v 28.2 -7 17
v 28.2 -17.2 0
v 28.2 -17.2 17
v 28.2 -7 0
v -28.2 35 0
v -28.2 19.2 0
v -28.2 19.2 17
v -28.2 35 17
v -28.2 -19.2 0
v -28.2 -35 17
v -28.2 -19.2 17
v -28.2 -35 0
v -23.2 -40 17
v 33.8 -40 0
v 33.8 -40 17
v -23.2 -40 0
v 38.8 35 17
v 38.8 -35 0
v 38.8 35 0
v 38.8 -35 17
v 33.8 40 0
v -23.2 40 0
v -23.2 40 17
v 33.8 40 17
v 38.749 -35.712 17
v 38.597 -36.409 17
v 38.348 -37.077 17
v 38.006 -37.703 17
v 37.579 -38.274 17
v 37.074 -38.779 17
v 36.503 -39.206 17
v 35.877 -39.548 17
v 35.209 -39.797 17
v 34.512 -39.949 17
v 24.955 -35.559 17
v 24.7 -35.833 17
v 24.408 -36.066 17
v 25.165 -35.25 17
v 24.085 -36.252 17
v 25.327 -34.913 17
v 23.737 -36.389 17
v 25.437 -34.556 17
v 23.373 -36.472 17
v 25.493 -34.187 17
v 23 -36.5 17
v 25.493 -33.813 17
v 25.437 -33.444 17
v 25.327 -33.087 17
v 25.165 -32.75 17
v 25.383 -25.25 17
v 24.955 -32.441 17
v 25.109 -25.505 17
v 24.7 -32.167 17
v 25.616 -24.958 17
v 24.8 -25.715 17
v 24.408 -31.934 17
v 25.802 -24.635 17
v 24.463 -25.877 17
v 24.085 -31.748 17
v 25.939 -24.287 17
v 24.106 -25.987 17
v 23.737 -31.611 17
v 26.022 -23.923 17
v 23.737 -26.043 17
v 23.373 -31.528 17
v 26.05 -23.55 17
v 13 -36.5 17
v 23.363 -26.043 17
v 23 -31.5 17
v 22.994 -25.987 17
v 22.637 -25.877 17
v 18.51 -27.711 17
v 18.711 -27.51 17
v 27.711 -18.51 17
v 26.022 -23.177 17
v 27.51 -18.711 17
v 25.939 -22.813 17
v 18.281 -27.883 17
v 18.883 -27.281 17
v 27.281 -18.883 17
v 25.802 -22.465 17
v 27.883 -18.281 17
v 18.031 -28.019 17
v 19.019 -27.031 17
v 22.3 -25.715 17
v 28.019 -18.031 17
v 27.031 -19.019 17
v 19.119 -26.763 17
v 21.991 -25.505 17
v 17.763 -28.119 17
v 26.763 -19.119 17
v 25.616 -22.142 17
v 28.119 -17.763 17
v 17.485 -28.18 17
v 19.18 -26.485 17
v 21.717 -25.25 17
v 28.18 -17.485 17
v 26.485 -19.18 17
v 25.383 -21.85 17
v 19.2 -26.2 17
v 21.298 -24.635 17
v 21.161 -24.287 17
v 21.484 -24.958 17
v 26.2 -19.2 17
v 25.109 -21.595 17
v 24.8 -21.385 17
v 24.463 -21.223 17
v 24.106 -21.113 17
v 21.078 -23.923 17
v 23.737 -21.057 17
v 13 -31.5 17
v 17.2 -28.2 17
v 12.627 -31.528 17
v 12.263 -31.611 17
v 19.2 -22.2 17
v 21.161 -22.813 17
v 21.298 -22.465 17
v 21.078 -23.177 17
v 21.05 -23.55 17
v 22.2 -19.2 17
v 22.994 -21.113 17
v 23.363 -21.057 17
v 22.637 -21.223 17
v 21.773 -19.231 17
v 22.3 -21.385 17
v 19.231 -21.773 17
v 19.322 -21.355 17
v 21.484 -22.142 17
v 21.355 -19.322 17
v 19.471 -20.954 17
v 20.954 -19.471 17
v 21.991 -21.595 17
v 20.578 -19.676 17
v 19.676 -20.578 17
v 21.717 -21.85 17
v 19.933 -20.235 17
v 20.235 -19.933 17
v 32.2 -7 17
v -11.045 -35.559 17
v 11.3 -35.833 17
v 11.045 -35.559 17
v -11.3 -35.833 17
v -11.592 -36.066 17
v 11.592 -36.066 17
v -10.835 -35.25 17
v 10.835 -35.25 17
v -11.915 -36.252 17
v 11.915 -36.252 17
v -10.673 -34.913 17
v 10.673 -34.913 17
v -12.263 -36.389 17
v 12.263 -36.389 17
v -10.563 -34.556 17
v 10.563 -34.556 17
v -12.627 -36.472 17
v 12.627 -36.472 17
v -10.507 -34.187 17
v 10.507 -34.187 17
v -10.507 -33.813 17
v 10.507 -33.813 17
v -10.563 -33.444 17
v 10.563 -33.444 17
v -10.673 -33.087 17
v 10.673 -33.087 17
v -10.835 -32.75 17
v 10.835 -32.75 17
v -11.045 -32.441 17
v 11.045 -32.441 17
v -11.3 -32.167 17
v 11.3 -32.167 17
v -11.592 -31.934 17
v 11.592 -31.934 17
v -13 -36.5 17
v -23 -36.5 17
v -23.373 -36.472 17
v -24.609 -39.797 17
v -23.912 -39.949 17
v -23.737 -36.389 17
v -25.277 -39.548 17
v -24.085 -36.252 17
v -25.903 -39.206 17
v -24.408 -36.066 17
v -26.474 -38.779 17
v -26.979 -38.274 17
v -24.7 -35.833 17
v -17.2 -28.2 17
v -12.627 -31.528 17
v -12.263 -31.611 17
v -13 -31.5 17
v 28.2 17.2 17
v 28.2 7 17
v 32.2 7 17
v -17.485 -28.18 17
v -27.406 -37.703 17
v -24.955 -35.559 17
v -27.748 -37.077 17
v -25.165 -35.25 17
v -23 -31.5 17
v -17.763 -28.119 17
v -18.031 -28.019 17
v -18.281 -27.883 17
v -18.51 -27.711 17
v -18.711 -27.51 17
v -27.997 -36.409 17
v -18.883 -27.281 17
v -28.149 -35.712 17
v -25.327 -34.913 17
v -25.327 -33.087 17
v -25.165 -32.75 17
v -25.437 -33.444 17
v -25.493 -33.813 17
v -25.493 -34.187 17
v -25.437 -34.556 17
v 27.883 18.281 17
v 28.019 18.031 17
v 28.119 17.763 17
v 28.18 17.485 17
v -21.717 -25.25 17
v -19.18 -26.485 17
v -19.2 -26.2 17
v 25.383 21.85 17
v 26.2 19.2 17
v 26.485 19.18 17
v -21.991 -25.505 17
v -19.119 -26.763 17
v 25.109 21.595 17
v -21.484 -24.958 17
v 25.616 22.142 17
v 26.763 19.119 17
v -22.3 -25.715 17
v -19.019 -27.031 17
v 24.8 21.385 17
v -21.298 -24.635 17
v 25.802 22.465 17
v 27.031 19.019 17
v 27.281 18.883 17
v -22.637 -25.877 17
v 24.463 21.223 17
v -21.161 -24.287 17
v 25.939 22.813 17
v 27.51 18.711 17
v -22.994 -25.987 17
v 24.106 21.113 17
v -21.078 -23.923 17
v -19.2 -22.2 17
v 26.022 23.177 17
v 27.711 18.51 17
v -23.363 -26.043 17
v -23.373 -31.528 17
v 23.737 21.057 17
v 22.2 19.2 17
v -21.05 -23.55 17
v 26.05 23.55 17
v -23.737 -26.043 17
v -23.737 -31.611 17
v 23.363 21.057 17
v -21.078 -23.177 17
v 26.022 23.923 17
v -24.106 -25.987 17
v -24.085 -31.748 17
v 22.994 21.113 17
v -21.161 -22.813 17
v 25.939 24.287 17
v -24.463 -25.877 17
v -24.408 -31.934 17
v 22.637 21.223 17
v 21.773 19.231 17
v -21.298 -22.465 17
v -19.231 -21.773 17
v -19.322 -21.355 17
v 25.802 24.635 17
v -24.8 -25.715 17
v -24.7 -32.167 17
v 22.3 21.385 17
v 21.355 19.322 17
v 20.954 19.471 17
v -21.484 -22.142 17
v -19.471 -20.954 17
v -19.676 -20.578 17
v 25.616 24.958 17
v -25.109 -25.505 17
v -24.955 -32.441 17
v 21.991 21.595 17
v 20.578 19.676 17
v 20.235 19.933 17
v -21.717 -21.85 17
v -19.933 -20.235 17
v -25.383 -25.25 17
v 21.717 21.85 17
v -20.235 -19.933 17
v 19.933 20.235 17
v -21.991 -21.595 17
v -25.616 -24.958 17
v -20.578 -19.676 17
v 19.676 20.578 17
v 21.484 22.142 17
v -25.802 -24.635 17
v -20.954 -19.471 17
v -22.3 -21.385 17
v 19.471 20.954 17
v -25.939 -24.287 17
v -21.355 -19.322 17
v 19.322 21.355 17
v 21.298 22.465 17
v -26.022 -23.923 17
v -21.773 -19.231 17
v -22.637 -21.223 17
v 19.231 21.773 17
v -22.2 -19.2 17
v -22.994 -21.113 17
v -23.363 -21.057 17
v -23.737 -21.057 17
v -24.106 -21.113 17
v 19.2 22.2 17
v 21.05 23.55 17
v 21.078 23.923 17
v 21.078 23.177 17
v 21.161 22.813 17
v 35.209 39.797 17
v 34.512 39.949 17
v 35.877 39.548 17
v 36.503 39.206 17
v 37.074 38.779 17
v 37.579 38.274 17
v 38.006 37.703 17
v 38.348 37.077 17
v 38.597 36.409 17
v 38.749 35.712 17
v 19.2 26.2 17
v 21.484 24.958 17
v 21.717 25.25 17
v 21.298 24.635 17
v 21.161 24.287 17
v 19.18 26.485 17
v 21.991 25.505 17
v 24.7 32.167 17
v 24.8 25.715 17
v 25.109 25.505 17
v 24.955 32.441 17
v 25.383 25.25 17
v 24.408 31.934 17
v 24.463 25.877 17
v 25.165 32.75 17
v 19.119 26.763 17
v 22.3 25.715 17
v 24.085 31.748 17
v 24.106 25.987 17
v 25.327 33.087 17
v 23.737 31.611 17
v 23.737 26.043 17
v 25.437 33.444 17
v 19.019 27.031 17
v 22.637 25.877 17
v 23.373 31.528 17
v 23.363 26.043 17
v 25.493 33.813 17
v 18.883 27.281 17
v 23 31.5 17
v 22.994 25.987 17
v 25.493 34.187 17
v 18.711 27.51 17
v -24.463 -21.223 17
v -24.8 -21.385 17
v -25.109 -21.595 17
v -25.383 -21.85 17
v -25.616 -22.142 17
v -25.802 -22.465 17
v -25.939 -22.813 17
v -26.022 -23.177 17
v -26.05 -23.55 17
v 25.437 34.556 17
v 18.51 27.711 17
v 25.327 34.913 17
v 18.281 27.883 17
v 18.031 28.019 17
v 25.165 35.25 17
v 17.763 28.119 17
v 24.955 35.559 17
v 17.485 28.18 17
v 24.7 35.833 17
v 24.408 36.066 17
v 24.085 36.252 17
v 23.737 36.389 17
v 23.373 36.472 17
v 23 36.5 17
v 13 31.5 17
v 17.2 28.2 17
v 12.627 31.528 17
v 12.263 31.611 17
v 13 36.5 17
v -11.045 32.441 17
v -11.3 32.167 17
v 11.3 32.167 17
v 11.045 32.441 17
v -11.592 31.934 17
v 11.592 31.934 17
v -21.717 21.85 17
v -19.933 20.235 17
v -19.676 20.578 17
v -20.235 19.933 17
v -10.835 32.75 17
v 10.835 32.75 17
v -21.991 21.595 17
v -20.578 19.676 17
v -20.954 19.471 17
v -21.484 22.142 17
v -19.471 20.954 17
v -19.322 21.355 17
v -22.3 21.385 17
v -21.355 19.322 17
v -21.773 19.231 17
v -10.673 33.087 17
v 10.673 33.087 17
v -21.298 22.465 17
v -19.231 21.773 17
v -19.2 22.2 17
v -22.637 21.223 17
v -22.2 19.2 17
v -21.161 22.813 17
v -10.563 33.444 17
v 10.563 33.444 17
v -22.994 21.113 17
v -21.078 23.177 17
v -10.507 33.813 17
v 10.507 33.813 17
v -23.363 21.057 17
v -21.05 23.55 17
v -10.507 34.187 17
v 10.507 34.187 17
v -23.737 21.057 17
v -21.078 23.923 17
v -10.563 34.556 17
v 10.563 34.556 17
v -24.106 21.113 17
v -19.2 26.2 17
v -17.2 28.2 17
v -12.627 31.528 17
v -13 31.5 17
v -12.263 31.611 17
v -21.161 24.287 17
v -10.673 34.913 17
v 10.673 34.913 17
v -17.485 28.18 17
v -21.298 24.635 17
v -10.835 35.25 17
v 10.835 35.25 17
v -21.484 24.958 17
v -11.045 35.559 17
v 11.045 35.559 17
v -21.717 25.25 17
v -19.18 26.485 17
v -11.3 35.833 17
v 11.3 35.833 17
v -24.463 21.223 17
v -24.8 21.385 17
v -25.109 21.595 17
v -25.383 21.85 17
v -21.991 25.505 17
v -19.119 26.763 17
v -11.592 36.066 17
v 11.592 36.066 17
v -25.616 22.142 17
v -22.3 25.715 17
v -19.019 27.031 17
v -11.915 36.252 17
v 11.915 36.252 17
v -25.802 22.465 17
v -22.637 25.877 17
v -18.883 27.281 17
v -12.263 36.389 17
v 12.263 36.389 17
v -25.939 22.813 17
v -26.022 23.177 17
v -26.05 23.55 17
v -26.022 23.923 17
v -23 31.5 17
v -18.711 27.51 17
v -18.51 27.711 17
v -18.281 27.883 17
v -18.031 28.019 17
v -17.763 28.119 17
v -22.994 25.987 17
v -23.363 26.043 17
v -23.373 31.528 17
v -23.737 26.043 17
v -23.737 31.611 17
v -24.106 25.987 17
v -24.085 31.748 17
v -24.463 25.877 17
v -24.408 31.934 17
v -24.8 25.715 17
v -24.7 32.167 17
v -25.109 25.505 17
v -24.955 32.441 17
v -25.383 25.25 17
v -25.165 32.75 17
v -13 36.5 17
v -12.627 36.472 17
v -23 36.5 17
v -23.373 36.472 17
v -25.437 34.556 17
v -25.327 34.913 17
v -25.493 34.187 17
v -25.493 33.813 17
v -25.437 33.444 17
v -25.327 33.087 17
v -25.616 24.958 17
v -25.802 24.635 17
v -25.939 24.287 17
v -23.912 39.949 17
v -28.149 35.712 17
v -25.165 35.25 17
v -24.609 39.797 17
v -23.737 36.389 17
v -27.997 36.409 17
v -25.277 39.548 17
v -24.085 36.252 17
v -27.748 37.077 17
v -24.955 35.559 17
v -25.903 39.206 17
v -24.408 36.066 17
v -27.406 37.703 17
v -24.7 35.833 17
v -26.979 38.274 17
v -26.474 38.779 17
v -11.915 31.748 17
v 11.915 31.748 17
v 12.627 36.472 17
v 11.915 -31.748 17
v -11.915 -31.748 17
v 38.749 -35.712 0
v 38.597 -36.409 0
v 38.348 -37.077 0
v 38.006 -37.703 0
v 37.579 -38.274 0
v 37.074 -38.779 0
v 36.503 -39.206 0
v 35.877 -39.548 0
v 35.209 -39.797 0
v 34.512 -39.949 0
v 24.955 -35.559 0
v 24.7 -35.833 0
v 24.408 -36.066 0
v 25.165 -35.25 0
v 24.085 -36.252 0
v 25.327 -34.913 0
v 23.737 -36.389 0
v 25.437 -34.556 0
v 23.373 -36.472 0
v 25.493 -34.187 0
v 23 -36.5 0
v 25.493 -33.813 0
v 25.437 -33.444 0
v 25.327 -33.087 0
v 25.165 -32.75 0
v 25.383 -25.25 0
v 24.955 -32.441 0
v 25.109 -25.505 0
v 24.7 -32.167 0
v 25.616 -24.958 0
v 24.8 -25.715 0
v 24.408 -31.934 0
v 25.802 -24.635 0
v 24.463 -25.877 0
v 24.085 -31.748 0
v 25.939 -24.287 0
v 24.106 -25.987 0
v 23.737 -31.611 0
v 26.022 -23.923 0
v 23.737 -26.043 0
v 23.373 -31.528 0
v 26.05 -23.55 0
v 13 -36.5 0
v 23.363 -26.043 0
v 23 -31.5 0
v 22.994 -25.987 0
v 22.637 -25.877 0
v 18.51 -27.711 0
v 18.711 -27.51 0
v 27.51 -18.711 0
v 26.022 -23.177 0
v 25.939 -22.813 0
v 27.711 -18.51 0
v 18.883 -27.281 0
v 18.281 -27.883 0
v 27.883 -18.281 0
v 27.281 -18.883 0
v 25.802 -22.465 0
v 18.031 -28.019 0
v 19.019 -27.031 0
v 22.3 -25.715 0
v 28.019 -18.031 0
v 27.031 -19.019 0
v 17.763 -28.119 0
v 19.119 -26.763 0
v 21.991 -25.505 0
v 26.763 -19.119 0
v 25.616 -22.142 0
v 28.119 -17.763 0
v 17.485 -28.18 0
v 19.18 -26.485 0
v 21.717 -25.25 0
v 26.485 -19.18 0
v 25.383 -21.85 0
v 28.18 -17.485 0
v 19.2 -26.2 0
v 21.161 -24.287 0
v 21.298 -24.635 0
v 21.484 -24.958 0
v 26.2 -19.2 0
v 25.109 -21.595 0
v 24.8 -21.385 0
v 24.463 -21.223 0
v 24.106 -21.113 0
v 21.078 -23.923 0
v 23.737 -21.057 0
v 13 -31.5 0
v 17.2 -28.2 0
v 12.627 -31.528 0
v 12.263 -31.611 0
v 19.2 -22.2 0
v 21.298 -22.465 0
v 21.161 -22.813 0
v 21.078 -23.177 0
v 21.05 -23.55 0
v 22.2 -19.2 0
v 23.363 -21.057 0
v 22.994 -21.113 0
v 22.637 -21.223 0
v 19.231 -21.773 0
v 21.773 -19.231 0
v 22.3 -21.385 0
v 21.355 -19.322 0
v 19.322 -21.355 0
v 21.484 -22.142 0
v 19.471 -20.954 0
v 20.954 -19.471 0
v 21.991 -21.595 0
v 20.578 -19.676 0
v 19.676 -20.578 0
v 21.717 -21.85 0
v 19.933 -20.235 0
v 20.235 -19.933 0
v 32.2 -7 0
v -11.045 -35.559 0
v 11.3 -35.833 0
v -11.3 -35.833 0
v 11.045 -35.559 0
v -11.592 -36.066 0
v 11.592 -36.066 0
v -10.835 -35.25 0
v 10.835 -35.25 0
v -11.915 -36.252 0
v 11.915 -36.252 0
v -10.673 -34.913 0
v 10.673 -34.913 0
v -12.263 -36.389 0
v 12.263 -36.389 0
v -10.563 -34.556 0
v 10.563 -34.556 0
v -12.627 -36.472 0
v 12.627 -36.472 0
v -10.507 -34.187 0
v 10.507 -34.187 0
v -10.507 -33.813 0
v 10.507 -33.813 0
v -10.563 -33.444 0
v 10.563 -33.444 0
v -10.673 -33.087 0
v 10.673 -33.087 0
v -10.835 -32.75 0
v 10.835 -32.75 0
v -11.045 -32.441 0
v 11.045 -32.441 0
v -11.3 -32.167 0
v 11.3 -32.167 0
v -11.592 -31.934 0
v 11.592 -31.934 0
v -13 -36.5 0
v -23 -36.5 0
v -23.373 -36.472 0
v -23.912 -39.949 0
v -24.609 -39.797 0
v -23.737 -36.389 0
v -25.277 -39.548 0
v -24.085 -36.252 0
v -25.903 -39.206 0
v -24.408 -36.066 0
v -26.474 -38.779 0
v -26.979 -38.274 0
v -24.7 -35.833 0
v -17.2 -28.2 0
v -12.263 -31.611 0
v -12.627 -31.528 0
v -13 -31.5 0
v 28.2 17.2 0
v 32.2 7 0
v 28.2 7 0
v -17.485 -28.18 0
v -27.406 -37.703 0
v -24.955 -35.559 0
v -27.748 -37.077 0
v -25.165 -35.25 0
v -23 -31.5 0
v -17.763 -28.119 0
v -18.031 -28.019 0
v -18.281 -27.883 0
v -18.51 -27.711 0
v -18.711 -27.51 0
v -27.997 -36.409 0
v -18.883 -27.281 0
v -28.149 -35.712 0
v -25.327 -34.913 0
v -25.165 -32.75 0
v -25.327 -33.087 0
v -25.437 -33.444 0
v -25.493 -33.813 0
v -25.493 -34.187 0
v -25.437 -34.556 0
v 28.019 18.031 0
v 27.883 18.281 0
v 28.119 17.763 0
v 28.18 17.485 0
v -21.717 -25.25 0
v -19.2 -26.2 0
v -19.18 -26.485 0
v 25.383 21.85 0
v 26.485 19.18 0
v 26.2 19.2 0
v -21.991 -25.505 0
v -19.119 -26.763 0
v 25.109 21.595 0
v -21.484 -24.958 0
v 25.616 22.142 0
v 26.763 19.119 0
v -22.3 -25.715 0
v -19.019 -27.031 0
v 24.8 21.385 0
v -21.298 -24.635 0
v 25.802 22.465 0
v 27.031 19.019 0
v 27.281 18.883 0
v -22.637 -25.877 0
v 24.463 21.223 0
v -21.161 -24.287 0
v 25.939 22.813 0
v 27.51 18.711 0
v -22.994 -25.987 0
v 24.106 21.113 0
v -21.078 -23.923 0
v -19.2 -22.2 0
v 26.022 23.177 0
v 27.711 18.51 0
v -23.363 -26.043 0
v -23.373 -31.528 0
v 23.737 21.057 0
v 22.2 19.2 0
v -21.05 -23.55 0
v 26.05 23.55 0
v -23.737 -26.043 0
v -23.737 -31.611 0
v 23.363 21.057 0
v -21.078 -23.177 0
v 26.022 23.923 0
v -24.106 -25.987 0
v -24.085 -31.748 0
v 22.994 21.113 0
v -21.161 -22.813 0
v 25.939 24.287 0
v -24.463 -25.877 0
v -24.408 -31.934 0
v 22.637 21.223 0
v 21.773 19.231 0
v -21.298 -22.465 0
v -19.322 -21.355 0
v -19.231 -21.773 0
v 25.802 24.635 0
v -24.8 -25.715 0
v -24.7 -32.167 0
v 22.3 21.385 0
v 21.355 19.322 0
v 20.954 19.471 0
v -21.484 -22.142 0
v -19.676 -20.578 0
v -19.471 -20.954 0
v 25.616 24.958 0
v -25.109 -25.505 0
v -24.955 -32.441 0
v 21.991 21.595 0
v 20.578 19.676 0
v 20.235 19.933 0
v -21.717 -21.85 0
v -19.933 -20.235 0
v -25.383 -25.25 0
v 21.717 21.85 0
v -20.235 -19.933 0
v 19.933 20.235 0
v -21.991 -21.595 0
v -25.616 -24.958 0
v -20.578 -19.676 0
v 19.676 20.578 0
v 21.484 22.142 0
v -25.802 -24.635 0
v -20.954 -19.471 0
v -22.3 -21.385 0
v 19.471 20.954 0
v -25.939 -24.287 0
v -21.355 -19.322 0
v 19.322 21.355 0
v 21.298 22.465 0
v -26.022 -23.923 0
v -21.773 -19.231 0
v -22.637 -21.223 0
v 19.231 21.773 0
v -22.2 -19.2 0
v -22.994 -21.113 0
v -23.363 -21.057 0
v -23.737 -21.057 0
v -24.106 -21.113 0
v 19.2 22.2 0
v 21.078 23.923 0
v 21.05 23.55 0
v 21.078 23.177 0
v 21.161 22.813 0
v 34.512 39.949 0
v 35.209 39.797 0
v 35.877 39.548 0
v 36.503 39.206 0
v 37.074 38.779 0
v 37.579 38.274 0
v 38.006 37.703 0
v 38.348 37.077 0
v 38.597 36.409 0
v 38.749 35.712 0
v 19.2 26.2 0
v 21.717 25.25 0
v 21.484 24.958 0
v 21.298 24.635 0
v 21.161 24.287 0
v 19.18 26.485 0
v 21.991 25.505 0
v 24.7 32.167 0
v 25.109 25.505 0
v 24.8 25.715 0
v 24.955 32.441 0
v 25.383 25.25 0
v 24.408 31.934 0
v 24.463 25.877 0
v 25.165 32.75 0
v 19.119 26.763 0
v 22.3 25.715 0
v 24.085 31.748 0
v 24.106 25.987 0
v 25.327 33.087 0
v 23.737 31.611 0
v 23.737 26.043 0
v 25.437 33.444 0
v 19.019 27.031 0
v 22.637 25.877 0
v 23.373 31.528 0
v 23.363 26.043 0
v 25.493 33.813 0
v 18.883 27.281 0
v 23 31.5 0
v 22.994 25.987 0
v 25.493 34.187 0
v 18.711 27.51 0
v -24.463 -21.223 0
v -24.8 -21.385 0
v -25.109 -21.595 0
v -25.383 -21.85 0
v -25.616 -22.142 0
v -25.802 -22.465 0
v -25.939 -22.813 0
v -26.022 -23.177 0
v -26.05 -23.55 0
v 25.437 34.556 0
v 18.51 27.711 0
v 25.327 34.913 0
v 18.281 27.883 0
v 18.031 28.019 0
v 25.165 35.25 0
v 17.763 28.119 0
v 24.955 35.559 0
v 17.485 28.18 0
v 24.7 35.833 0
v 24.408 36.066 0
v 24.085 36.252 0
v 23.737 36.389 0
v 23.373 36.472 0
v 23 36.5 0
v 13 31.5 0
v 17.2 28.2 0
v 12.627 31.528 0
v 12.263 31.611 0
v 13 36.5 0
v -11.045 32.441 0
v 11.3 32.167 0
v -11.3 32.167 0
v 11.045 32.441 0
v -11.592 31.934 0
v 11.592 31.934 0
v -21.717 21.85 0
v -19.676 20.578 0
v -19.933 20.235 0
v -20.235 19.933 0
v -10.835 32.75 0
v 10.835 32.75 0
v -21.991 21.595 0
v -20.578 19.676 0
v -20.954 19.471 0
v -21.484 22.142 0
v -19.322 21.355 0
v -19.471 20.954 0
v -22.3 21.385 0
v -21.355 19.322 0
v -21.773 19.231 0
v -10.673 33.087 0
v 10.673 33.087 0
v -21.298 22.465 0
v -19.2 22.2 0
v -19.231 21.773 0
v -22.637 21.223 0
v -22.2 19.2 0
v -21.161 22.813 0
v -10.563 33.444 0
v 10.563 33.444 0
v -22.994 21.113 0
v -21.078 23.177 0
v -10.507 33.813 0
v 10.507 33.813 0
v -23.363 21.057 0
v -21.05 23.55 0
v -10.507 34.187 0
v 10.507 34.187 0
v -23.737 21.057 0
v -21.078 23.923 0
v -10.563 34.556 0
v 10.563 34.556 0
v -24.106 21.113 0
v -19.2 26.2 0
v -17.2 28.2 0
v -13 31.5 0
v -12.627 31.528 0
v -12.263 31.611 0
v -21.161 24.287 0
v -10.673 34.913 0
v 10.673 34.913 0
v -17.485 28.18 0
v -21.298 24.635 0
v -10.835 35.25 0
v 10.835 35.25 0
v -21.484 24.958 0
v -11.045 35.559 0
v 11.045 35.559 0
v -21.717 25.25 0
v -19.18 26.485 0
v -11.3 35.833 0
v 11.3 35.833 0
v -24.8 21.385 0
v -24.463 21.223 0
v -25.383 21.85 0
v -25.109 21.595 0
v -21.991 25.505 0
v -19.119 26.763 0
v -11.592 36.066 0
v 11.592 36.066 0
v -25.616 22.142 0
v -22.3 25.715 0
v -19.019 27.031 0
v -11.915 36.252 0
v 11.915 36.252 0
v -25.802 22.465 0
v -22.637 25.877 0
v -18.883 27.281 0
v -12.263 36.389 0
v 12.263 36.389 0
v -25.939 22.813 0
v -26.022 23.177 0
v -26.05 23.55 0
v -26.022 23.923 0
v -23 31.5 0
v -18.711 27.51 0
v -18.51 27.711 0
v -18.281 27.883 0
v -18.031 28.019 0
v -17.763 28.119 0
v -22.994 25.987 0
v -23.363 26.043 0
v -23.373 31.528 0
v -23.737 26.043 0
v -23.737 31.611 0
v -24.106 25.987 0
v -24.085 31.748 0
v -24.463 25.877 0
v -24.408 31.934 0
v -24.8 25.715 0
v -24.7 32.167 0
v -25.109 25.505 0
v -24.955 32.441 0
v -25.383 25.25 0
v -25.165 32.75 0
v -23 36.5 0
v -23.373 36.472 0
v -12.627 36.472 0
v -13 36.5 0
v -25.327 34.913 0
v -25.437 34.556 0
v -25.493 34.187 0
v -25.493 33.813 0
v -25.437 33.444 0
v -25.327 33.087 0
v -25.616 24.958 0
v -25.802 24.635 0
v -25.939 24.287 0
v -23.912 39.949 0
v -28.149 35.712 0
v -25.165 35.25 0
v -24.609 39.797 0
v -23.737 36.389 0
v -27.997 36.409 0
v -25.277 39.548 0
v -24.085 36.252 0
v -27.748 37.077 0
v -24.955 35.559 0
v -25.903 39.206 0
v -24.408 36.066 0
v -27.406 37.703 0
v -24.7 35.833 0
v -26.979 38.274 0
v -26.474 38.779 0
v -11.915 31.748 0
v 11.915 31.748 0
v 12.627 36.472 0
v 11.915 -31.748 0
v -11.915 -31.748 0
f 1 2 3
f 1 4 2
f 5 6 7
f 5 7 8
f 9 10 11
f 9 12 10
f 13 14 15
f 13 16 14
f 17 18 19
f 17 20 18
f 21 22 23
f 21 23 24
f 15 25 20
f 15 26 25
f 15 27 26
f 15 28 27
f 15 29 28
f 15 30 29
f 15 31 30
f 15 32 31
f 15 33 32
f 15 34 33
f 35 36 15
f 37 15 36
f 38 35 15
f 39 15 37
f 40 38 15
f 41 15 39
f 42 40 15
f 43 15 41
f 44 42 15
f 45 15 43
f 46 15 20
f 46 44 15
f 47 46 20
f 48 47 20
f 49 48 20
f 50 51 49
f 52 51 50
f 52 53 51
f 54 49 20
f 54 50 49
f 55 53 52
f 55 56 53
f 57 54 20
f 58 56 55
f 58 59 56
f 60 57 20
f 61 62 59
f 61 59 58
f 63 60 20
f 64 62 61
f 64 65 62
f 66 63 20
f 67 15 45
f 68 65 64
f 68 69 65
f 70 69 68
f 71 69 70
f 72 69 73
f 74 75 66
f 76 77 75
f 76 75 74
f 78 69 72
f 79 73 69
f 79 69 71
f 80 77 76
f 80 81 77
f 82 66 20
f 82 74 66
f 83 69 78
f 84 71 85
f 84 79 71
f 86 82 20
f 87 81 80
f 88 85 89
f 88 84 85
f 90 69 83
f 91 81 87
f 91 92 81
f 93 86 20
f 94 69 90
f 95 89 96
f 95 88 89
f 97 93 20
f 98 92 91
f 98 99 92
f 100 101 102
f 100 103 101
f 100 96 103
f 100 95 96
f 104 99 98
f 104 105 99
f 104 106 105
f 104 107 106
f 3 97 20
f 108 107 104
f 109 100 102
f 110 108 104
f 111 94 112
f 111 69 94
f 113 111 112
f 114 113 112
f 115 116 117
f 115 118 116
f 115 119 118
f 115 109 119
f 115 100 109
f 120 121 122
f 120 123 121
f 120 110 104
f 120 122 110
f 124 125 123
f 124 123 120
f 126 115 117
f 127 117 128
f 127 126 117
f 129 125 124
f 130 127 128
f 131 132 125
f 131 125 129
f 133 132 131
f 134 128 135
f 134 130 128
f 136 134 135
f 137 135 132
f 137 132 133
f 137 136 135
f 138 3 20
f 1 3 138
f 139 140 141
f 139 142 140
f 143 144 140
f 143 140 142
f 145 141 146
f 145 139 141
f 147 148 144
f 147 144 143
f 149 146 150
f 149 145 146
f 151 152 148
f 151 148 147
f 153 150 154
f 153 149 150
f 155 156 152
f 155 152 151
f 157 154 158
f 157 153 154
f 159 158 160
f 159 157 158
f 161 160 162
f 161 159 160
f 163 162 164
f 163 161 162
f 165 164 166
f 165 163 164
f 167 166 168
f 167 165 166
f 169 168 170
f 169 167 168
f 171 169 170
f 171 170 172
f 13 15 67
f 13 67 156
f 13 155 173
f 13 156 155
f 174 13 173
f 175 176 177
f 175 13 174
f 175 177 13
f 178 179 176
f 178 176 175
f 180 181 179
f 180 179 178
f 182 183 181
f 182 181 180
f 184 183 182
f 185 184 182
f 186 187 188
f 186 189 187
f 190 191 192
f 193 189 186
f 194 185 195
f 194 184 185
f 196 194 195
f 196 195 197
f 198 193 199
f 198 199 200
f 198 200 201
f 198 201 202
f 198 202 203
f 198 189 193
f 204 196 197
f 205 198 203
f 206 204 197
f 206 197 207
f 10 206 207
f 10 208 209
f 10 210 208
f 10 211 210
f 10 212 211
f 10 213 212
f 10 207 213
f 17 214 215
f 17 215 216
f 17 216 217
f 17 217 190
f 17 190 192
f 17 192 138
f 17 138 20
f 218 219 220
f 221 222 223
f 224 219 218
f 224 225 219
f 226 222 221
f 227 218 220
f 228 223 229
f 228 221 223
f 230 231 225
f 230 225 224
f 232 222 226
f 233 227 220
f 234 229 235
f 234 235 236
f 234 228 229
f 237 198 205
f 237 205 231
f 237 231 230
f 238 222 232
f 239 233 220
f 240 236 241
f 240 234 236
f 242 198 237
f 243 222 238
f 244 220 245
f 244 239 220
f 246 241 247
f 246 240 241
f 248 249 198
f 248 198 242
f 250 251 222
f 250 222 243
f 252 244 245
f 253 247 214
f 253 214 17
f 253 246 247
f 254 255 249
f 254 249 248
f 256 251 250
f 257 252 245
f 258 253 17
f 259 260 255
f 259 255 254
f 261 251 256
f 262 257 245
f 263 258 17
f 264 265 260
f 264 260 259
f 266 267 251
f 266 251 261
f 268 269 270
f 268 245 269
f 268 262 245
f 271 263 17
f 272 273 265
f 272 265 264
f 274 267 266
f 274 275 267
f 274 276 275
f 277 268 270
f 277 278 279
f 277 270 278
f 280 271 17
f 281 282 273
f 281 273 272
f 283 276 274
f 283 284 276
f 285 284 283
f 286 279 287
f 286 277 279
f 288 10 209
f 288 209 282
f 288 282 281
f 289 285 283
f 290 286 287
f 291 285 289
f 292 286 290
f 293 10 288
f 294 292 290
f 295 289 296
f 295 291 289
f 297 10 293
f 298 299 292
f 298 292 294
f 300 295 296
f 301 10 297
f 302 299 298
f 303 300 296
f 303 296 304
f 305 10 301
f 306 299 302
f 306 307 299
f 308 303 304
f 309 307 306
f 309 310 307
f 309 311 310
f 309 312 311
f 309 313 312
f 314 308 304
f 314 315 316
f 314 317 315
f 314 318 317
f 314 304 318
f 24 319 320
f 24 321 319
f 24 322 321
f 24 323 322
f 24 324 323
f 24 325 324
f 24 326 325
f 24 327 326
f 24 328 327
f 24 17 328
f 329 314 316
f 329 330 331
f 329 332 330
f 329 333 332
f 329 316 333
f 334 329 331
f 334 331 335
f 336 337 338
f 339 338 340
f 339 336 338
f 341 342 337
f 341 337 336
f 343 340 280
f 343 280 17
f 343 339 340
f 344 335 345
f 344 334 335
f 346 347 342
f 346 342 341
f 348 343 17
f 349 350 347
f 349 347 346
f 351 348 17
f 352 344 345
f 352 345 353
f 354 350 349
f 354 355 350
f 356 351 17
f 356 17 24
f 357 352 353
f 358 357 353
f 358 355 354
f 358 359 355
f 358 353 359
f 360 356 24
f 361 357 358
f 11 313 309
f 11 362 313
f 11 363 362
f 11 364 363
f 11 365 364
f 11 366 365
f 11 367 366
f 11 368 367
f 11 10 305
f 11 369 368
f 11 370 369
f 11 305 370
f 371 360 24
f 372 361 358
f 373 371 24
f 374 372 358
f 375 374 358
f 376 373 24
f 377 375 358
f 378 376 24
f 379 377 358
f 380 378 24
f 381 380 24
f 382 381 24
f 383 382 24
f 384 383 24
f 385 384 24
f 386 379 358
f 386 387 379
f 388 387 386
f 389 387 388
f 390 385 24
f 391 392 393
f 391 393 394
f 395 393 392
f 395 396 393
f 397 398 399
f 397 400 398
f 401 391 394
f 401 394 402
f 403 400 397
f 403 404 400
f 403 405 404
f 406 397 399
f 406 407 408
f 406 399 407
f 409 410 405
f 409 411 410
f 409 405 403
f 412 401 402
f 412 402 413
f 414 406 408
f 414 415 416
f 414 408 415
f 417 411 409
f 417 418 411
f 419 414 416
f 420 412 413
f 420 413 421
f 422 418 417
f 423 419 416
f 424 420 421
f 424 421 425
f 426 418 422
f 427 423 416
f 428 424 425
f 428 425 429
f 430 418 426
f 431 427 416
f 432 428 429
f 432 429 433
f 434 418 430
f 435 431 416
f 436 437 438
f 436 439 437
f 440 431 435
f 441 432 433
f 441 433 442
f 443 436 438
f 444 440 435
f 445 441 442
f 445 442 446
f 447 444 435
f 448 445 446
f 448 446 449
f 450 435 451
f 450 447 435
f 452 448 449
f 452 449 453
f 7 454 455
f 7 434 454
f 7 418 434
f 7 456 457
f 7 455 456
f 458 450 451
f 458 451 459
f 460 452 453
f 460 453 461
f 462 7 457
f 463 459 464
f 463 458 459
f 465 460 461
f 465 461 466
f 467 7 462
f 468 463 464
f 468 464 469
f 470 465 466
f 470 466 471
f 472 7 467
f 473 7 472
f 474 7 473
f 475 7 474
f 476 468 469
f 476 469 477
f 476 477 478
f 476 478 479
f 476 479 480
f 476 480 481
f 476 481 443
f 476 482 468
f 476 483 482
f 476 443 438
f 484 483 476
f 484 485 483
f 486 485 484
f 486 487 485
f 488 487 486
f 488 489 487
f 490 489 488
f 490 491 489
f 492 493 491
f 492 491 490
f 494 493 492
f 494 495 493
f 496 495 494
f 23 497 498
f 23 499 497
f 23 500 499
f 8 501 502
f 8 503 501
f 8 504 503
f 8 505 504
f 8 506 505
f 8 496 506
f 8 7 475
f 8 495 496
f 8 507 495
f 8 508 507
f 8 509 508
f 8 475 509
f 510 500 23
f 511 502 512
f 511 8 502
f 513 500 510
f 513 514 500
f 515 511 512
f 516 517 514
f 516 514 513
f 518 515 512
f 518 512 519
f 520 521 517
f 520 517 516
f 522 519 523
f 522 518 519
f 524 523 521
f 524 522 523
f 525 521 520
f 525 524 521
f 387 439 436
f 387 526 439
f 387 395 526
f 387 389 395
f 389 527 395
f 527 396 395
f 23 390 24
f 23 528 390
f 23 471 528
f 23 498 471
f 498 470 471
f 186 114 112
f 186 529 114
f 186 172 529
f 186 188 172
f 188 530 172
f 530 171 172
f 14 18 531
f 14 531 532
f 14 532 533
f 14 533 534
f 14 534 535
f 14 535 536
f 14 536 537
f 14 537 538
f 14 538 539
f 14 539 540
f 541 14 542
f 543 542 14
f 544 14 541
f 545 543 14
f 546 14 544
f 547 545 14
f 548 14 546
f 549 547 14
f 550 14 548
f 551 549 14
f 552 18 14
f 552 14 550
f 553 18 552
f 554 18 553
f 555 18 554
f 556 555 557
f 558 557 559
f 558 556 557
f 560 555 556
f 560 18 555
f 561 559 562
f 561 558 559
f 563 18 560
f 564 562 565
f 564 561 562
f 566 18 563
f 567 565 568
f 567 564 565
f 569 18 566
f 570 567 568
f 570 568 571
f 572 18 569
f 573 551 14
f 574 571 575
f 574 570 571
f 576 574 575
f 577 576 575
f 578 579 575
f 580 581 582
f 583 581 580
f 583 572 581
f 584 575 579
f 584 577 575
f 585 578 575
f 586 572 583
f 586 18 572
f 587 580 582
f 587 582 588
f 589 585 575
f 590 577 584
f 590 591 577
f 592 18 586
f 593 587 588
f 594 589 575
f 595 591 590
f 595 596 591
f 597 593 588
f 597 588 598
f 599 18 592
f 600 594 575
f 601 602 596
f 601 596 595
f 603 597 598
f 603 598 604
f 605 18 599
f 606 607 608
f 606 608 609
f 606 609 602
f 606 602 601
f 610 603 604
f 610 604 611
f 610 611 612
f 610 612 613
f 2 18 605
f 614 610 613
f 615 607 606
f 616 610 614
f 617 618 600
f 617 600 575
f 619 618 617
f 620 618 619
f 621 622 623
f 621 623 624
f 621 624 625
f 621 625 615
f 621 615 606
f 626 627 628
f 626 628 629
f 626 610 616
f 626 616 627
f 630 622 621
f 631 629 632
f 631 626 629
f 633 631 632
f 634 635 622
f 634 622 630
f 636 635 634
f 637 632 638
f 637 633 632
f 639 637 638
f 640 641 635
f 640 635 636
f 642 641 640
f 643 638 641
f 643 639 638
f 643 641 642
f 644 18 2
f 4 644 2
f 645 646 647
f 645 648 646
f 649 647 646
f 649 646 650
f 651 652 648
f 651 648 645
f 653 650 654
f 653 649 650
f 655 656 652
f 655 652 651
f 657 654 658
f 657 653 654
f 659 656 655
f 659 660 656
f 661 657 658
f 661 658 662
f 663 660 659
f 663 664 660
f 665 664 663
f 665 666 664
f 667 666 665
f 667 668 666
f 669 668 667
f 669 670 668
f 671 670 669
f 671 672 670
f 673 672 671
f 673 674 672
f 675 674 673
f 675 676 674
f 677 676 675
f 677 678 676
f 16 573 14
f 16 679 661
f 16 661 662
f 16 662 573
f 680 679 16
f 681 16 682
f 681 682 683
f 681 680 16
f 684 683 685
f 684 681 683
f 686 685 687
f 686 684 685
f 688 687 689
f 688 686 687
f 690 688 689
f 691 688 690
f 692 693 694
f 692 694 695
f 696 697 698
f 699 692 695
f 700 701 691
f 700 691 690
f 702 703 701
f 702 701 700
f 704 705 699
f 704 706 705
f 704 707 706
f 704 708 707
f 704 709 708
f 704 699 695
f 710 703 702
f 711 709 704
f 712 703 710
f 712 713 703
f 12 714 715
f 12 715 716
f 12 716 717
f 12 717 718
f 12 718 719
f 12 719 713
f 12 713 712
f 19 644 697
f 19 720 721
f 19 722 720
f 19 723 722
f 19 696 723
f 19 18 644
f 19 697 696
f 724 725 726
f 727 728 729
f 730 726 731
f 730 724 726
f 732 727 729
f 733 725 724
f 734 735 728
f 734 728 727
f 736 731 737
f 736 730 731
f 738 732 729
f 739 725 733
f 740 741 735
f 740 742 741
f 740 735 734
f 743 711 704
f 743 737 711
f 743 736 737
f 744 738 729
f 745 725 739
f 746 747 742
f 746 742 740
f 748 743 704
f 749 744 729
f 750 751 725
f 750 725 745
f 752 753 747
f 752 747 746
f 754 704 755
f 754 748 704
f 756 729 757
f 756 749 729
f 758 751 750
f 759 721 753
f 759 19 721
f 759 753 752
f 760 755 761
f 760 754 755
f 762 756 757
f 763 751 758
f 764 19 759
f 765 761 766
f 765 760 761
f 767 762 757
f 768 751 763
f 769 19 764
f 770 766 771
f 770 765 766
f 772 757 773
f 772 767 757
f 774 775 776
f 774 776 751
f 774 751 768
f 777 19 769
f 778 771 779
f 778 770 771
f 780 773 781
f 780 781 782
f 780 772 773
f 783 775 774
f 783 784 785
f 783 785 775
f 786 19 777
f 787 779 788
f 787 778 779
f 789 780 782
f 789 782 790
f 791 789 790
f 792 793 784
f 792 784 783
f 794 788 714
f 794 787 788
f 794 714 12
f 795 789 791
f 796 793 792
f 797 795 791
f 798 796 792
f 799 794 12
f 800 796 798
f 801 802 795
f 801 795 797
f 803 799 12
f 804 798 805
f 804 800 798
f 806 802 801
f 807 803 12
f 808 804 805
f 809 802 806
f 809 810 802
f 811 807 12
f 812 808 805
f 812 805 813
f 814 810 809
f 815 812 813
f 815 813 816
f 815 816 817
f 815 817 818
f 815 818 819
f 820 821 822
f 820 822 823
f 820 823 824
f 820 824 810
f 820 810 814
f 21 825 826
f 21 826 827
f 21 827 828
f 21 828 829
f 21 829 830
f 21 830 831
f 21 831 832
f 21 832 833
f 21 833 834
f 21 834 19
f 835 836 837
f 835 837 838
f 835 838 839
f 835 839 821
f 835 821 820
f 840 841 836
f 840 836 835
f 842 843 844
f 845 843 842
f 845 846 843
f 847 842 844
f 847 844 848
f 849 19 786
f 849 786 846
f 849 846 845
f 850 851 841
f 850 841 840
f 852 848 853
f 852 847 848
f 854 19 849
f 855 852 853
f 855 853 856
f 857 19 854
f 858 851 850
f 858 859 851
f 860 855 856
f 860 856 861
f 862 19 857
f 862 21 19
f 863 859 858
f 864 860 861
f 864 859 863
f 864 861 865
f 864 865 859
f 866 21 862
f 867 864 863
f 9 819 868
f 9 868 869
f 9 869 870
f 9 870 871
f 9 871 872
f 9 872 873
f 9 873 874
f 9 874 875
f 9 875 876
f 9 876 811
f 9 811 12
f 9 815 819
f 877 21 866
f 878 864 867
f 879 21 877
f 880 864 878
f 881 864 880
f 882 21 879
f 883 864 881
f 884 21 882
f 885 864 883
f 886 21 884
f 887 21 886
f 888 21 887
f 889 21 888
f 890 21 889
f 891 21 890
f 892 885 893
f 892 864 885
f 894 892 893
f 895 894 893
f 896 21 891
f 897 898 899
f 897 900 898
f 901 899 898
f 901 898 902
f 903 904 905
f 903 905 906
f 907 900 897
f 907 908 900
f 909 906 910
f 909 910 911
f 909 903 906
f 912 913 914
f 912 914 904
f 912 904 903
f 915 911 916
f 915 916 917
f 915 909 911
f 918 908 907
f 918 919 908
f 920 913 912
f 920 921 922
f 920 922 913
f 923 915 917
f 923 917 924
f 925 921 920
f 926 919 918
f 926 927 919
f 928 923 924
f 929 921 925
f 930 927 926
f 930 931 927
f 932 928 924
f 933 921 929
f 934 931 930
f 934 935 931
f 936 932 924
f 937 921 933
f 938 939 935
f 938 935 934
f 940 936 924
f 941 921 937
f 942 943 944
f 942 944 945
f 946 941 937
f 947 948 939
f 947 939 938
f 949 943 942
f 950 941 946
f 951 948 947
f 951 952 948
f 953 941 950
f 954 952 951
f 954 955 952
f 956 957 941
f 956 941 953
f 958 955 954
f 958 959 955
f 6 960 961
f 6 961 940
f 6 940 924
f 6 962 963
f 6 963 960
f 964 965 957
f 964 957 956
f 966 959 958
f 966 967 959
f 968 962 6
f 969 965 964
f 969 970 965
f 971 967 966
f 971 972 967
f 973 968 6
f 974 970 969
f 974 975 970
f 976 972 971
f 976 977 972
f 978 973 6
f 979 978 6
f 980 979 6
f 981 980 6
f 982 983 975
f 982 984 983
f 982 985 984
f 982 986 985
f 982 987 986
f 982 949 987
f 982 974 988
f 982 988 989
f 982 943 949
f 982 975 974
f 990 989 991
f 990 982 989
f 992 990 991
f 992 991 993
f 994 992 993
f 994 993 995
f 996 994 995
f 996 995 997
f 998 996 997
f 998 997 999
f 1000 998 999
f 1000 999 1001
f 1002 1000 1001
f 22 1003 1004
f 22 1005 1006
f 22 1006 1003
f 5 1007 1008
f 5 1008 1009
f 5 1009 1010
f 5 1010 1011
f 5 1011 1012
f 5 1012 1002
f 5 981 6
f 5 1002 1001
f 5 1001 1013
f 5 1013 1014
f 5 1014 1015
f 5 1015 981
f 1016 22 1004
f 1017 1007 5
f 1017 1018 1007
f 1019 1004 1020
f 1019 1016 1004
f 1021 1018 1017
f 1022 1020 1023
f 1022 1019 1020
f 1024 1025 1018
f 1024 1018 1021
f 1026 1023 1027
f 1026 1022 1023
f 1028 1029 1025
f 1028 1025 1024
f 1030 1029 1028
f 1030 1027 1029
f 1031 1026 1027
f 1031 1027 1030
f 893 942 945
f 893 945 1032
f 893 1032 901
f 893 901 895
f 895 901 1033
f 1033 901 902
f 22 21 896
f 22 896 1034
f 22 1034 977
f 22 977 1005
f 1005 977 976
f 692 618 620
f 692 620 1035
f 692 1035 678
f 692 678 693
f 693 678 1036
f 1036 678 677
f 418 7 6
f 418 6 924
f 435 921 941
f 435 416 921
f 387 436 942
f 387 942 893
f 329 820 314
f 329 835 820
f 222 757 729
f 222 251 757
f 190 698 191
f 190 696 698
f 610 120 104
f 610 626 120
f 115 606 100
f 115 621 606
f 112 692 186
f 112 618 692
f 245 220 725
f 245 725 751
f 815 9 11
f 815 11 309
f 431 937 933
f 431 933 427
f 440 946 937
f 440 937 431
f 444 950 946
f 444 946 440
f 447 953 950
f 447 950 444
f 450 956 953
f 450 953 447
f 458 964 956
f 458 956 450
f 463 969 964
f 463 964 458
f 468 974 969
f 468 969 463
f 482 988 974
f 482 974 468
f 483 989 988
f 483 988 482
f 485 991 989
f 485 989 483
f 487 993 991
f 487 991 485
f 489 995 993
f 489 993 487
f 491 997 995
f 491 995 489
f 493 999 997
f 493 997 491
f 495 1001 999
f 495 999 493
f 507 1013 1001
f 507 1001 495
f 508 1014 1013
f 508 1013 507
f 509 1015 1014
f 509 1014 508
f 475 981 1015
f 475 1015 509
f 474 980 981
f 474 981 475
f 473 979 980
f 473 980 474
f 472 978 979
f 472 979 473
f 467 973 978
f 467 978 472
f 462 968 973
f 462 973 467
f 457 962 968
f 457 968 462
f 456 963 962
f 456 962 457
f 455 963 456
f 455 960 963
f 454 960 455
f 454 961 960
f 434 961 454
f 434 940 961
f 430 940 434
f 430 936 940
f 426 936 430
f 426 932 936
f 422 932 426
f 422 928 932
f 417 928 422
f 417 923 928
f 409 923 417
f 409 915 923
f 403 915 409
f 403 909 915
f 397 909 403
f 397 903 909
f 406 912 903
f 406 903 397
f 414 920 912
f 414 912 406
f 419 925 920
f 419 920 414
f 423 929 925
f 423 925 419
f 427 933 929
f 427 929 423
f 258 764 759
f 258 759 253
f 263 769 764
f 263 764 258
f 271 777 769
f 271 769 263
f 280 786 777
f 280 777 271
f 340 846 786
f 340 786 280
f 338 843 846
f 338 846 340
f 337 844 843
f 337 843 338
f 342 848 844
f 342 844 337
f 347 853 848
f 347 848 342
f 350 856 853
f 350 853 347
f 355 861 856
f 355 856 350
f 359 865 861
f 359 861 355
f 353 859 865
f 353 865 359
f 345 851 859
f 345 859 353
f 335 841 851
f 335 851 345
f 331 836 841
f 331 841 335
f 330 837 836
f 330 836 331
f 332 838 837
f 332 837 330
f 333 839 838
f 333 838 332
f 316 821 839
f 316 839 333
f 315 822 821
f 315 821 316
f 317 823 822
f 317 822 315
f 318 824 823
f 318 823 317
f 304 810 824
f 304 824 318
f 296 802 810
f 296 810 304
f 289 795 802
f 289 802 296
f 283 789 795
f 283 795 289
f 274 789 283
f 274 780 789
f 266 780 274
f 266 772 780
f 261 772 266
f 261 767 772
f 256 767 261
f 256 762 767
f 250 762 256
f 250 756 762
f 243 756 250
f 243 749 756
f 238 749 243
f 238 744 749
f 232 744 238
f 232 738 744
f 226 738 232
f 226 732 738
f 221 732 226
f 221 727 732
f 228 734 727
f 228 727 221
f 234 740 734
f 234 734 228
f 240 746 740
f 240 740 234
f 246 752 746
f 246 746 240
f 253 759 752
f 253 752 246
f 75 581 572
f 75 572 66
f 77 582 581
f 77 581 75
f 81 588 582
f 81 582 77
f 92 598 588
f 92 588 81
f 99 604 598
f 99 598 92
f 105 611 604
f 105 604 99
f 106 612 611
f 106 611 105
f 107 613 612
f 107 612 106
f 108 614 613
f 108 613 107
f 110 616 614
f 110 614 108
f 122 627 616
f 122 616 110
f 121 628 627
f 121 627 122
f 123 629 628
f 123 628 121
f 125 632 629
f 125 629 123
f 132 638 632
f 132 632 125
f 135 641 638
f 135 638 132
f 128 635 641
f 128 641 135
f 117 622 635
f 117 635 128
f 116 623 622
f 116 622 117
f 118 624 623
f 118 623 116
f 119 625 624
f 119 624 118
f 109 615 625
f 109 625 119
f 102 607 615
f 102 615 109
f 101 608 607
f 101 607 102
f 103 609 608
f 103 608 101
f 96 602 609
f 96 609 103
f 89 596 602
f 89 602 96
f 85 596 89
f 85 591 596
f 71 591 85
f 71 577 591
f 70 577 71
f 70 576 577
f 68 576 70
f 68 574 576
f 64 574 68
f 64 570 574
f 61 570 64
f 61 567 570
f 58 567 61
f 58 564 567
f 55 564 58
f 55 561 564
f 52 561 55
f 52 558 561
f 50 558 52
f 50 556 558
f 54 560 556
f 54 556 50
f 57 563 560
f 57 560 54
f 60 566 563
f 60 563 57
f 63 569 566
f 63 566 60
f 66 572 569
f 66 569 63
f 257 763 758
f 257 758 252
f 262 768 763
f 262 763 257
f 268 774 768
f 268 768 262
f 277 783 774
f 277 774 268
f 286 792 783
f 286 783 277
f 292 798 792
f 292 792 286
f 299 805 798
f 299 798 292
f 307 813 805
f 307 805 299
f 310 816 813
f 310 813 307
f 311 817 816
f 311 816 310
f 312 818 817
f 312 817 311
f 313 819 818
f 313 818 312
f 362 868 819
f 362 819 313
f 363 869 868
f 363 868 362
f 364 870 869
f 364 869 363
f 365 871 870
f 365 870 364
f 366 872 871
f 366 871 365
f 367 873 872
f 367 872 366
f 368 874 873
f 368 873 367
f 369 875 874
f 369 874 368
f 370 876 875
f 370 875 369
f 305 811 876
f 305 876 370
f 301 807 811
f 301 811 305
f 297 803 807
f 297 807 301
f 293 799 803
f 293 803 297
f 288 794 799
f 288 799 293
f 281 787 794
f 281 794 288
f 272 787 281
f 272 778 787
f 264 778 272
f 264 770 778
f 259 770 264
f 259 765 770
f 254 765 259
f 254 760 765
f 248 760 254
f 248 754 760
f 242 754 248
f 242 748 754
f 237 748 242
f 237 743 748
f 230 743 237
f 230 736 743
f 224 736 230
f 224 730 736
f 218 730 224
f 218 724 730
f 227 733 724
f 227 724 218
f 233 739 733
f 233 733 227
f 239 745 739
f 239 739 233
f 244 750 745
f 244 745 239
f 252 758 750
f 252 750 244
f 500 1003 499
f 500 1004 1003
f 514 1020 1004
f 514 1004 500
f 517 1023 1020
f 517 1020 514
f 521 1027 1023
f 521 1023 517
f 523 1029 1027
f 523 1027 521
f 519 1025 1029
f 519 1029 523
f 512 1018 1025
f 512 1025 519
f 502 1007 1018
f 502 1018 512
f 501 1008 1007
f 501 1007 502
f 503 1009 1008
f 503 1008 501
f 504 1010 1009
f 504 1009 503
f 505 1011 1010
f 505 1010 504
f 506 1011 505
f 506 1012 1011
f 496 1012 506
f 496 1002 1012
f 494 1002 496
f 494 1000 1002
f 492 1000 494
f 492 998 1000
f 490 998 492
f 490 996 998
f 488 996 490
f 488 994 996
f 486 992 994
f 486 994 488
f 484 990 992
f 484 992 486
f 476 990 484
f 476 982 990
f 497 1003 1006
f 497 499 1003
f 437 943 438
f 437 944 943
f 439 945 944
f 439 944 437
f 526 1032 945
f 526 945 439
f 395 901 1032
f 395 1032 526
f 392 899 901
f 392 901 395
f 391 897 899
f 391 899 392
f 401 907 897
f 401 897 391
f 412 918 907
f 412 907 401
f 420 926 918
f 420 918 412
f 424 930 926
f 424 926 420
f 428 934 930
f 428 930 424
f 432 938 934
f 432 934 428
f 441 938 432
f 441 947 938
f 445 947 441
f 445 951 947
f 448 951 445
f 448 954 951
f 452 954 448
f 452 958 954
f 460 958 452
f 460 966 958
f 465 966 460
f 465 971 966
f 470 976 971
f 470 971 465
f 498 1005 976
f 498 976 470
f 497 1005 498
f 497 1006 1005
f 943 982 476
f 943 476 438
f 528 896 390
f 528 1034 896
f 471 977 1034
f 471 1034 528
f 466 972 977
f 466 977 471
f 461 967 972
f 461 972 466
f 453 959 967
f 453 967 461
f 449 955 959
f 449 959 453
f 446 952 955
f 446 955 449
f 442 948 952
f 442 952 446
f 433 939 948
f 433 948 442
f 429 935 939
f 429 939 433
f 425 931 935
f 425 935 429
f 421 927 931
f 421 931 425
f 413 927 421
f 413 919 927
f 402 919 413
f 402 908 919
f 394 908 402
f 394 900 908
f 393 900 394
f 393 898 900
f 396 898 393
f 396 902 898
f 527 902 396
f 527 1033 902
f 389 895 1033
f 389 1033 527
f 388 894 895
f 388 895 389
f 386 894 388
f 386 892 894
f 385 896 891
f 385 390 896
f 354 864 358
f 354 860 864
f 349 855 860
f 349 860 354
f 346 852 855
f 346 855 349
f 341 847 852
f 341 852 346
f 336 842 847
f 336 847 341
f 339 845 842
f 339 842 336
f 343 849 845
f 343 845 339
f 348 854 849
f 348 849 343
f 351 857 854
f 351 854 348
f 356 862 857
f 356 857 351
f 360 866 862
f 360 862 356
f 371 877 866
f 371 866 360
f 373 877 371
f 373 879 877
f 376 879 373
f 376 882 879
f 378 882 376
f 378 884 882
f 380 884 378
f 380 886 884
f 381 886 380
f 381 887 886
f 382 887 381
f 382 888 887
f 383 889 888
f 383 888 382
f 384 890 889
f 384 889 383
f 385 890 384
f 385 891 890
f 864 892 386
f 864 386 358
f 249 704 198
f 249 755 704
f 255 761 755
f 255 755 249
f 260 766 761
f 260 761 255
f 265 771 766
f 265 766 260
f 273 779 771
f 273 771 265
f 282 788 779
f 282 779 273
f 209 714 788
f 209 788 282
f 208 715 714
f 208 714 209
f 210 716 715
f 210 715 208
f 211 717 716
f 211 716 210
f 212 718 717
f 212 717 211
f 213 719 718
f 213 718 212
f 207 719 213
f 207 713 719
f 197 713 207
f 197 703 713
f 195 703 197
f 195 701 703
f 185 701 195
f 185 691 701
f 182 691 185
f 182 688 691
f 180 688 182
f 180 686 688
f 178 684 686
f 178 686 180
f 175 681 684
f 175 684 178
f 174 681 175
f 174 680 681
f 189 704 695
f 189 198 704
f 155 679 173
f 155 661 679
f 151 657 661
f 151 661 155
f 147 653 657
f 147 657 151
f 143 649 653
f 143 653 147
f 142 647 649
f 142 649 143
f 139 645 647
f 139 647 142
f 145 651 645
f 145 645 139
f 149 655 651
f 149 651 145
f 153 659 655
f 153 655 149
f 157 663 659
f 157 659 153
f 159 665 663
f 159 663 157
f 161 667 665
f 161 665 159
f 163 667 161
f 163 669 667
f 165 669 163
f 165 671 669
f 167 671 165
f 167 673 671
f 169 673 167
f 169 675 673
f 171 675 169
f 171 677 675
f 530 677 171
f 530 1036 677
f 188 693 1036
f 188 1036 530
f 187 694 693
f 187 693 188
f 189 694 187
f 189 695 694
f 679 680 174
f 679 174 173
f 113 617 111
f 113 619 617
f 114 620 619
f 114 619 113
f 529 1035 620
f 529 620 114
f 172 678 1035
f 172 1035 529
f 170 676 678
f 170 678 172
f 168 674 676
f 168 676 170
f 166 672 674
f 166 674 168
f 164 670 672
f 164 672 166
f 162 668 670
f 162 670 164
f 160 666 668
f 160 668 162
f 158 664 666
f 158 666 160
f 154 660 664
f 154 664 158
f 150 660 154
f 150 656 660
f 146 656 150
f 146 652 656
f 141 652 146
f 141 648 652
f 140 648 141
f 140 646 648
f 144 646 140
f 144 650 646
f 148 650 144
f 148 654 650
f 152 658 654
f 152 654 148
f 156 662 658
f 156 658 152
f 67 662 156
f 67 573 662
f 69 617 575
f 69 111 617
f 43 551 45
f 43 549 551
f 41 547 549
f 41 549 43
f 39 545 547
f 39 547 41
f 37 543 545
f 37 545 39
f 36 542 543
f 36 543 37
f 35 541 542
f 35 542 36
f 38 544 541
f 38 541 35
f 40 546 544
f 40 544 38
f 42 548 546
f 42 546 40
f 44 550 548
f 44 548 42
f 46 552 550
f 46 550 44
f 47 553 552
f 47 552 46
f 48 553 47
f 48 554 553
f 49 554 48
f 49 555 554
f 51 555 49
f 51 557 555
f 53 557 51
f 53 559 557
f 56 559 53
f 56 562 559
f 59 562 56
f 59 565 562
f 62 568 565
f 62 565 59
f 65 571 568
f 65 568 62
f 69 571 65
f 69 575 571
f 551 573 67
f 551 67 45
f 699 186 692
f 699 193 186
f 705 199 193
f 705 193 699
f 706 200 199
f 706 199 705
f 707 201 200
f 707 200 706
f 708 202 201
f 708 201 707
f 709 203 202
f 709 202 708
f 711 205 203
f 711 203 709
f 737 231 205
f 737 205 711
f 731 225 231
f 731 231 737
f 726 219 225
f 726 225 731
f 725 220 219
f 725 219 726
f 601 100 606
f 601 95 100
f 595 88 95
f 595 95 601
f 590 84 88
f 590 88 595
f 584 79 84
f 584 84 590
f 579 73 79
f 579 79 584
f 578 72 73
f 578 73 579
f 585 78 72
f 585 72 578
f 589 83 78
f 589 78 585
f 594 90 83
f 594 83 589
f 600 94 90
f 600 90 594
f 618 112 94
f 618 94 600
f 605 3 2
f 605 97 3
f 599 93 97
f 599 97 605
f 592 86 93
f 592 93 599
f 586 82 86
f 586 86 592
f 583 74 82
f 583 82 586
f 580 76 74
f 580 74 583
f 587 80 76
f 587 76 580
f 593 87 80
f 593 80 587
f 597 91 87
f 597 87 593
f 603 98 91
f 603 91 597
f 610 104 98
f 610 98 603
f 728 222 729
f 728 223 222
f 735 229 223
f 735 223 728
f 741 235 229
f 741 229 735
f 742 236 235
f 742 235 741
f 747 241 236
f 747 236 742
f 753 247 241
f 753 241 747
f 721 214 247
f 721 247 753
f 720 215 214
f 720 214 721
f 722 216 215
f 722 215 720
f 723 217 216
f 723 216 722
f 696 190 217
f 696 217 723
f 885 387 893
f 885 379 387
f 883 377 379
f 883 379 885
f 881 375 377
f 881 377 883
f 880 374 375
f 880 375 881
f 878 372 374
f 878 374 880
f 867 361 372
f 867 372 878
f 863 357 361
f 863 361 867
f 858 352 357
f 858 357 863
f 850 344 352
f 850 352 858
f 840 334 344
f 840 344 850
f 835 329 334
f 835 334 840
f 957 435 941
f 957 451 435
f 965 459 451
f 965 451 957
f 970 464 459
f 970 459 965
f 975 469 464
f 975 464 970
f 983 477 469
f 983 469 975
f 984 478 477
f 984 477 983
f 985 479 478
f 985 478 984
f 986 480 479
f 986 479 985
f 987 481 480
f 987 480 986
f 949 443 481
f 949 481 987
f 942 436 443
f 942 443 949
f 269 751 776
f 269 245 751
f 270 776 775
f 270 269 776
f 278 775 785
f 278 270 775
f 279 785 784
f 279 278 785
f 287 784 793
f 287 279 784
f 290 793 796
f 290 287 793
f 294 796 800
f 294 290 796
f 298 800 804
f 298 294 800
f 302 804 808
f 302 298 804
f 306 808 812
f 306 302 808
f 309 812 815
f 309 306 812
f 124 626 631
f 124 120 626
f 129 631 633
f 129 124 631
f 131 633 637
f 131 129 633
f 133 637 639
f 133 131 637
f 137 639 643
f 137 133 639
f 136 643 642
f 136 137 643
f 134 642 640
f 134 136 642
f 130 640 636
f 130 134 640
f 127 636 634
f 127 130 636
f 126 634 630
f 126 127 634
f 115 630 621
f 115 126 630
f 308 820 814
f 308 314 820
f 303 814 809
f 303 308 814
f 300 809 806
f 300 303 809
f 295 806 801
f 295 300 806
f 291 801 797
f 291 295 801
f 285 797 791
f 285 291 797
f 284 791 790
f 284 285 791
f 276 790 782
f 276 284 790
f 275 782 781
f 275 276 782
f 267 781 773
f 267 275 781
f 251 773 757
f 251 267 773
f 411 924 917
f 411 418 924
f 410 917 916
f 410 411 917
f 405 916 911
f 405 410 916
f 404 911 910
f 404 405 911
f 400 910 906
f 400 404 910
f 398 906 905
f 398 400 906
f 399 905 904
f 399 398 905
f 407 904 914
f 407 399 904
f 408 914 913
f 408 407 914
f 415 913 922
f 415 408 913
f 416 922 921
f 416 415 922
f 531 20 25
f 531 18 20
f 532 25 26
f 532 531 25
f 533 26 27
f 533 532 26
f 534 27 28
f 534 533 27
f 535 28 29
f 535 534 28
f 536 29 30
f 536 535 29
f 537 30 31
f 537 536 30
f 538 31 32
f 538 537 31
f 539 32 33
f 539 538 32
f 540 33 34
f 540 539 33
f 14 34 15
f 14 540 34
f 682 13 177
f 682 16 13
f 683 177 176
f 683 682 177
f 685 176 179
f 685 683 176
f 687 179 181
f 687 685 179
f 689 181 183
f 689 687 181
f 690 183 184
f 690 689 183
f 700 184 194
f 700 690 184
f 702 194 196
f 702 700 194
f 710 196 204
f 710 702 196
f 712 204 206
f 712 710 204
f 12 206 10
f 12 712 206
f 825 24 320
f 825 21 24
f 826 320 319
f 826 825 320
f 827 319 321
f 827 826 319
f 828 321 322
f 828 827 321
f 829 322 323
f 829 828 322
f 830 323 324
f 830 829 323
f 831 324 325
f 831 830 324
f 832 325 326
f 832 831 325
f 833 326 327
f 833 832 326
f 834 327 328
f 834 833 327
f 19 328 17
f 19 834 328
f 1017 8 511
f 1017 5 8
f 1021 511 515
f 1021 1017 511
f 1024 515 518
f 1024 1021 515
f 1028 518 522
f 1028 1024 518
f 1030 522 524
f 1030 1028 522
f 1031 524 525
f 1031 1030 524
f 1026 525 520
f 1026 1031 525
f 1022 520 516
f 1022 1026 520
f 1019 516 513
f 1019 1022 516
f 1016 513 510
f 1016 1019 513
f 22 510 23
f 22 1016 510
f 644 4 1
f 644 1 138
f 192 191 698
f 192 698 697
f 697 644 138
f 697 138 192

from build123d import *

# Parameters (mm, degrees)
CROQUIS1_W              = 67
CROQUIS1_H              = 80
SALIENTE_EXTRUIR1_DEPTH = 17
CORTAR_EXTRUIR2_DEPTH   = 59.261822835
CROQUIS5_R              = 2.5
CORTAR_EXTRUIR3_DEPTH   = 59.261822835
REDONDEO1_R             = 2
REDONDEO2_R             = 3
REDONDEO3_R             = 5
CROQUIS6_W              = 8
CROQUIS6_H              = 14
CORTAR_EXTRUIR4_DEPTH   = 59.261822835


with BuildPart() as part:
    # Croquis1 → Saliente-Extruir1 (new body)
    with BuildSketch(Plane.XY):
        with Locations((5.3, 0)):
            Rectangle(CROQUIS1_W, CROQUIS1_H)
    extrude(amount=SALIENTE_EXTRUIR1_DEPTH)

    # Croquis4 → Cortar-Extruir2 (cut, through all)
    with BuildSketch(Plane.XY.offset(17)):
        Polygon((-28.2, 19.2), (-19.2, 19.2), (-19.2, 28.2), (19.2, 28.2), (19.2, 19.2), (28.2, 19.2), (28.2, -19.2), (19.2, -19.2), (19.2, -28.2), (-19.2, -28.2), (-19.2, -19.2), (-28.2, -19.2), align=None)
    extrude(amount=-CORTAR_EXTRUIR2_DEPTH, mode=Mode.SUBTRACT)

    # Croquis5 → Cortar-Extruir3 (cut, through all)
    with BuildSketch(Plane.XY.offset(17)):
        with Locations((-23.55, 23.55)):
            Circle(CROQUIS5_R)
        with Locations((23.55, 23.55)):
            Circle(CROQUIS5_R)
        with Locations((23.55, -23.55)):
            Circle(CROQUIS5_R)
        with Locations((-23.55, -23.55)):
            Circle(CROQUIS5_R)
        with BuildLine():
            Line((-23, 36.5), (-13, 36.5))
            ThreePointArc((-13, 36.5), (-10.5, 34), (-13, 31.5))
            Line((-13, 31.5), (-23, 31.5))
            ThreePointArc((-23, 31.5), (-25.5, 34), (-23, 36.5))
        make_face()
        with BuildLine():
            Line((13, 36.5), (23, 36.5))
            ThreePointArc((23, 36.5), (25.5, 34), (23, 31.5))
            Line((23, 31.5), (13, 31.5))
            ThreePointArc((13, 31.5), (10.5, 34), (13, 36.5))
        make_face()
        with BuildLine():
            Line((-23, -31.5), (-13, -31.5))
            ThreePointArc((-13, -31.5), (-10.5, -34), (-13, -36.5))
            Line((-13, -36.5), (-23, -36.5))
            ThreePointArc((-23, -36.5), (-25.5, -34), (-23, -31.5))
        make_face()
        with BuildLine():
            Line((13, -31.5), (23, -31.5))
            ThreePointArc((23, -31.5), (25.5, -34), (23, -36.5))
            Line((23, -36.5), (13, -36.5))
            ThreePointArc((13, -36.5), (10.5, -34), (13, -31.5))
        make_face()
    extrude(amount=-CORTAR_EXTRUIR3_DEPTH, mode=Mode.SUBTRACT)

    # Redondeo1
    redondeo1_edges = [part.edges().sort_by_distance(p)[0] for p in [
        (-19.2, 28.2, 8.5),
        (19.2, 28.2, 8.5),
        (28.2, 19.2, 8.5),
        (28.2, -19.2, 8.5),
        (19.2, -28.2, 8.5),
        (-19.2, -28.2, 8.5),
    ]]
    fillet(redondeo1_edges, radius=REDONDEO1_R)

    # Redondeo2
    redondeo2_edges = [part.edges().sort_by_distance(p)[0] for p in [
        (-19.2, 19.2, 8.5),
        (19.2, 19.2, 8.5),
        (19.2, -19.2, 8.5),
        (-19.2, -19.2, 8.5),
    ]]
    fillet(redondeo2_edges, radius=REDONDEO2_R)

    # Redondeo3
    redondeo3_edges = [part.edges().sort_by_distance(p)[0] for p in [
        (-28.2, 40, 8.5),
        (38.8, 40, 8.5),
        (38.8, -40, 8.5),
        (-28.2, -40, 8.5),
    ]]
    fillet(redondeo3_edges, radius=REDONDEO3_R)

    # Croquis6 → Cortar-Extruir4 (cut, through all)
    with BuildSketch(Plane.XY.offset(17)):
        with Locations((28.2, 0)):
            Rectangle(CROQUIS6_W, CROQUIS6_H)
    extrude(amount=-CORTAR_EXTRUIR4_DEPTH, mode=Mode.SUBTRACT)


solid = part.part
